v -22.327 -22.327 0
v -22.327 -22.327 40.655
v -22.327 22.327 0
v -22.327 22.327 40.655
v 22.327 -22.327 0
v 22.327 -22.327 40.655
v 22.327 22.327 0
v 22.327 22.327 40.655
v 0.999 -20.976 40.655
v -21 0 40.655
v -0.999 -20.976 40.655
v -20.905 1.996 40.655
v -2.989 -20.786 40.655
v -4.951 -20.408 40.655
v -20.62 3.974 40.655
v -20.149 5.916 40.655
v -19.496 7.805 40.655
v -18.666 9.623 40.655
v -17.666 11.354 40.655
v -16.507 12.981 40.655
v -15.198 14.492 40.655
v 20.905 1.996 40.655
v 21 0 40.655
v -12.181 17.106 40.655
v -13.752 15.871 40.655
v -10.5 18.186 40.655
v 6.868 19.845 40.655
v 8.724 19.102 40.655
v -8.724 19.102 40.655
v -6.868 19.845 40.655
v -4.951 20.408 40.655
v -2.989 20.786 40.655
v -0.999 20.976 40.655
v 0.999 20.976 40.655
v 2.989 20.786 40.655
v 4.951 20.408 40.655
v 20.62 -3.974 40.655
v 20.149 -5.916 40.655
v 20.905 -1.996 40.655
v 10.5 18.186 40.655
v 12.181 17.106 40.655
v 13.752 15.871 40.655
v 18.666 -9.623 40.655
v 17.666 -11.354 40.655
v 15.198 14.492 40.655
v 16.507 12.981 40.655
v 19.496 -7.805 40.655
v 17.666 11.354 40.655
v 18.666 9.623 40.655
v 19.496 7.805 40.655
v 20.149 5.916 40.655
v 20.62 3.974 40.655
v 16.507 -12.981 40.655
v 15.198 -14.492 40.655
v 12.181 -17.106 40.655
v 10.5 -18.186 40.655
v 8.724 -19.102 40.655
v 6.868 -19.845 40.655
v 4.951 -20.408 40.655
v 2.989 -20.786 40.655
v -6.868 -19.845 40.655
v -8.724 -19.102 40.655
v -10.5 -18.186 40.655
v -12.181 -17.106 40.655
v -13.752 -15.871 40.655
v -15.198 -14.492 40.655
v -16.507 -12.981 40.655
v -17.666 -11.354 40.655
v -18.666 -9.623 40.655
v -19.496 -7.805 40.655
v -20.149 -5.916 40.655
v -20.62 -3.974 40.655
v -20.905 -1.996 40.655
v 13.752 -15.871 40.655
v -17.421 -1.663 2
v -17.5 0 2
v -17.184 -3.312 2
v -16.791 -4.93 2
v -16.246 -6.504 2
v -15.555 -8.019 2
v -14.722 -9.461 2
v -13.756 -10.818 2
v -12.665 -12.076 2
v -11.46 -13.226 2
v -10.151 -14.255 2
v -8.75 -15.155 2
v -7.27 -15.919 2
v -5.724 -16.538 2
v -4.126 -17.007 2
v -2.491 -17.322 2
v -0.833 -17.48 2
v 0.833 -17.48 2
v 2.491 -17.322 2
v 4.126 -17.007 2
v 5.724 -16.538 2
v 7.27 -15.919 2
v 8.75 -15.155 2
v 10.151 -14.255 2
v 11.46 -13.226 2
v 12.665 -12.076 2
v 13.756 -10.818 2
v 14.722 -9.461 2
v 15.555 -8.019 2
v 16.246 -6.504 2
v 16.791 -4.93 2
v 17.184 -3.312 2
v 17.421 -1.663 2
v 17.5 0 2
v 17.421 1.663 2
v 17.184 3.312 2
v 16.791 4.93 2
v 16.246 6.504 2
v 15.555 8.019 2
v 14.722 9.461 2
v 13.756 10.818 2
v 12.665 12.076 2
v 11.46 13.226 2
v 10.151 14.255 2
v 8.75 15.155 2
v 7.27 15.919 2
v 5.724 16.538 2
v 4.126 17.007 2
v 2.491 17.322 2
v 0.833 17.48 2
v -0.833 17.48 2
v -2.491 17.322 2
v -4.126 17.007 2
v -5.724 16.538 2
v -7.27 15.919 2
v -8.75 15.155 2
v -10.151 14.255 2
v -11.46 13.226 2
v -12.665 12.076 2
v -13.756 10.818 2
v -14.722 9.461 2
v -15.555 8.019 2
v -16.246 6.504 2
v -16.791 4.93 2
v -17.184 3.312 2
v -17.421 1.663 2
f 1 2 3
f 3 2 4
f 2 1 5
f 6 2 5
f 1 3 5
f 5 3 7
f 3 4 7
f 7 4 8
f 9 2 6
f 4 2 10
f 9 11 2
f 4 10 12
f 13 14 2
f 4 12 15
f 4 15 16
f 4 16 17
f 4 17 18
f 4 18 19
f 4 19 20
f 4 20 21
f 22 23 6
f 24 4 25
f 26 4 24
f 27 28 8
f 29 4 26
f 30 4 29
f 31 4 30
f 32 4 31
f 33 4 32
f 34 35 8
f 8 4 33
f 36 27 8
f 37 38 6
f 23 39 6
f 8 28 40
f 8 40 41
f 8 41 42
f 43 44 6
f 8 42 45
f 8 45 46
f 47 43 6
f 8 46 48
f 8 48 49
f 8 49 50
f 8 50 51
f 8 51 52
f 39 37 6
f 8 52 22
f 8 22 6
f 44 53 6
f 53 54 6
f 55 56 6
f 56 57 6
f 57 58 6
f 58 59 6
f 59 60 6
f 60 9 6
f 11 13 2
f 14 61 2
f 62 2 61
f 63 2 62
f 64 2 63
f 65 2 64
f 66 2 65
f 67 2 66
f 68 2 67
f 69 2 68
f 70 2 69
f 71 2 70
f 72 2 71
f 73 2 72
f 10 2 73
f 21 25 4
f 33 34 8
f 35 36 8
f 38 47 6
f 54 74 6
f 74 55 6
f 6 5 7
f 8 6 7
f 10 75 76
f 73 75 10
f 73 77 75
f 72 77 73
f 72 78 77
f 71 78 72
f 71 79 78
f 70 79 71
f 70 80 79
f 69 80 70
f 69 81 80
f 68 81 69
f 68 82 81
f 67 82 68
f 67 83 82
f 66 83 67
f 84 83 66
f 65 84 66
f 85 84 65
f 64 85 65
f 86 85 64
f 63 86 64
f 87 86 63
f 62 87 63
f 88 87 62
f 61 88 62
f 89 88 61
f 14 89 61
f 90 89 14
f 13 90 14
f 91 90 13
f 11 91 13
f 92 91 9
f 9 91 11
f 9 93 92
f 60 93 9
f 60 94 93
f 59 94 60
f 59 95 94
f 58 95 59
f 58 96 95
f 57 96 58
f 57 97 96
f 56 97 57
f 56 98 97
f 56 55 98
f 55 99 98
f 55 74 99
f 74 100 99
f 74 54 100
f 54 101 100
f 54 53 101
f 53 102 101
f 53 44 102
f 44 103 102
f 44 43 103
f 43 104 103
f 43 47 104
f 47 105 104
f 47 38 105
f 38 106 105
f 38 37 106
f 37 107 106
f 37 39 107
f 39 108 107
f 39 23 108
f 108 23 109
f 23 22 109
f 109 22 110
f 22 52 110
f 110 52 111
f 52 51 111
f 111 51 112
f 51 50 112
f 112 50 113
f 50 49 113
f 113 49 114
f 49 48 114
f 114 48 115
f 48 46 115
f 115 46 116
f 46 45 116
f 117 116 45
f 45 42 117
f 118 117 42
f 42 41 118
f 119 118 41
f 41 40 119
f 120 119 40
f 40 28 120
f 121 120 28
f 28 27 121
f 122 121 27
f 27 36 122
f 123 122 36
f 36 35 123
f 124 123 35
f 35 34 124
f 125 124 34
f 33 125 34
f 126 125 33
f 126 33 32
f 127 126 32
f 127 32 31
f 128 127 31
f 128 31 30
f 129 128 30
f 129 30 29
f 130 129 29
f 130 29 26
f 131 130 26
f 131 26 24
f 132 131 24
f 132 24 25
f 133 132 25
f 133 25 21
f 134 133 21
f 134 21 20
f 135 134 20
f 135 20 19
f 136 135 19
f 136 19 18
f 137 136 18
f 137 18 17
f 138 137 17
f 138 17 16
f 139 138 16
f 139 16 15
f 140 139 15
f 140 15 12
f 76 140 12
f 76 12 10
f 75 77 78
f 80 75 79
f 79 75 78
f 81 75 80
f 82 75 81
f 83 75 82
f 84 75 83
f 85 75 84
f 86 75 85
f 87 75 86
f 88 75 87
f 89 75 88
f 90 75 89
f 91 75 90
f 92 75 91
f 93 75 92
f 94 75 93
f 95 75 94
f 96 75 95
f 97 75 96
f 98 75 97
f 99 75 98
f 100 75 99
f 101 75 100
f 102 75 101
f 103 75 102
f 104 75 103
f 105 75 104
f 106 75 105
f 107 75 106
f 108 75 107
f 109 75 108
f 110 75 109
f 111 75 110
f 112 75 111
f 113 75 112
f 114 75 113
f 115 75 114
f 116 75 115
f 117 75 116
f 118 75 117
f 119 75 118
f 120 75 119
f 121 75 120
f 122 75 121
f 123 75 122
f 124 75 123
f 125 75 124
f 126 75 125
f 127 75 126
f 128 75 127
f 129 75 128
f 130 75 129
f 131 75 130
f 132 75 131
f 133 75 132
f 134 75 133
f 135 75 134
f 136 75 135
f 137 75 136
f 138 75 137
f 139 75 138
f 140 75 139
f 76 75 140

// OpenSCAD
//
// rice cup
//	cube type
//
// rice cooker cups are a standard 180 ml
// which is 180000 mm^3
// 

$fa=0.1;

BASE=35;
TOP=BASE*1.2;
AVGDIAM=(BASE+TOP)/2;
VOLUME=180000;
PI=3.14159;
HEIGHT=VOLUME/(AVGDIAM*AVGDIAM*PI);

WALLS=2;

difference() {
	// rice cup exterior
	translate( v=[0,0,(HEIGHT+WALLS)/2] ) {
		cube( size=[HEIGHT+(WALLS*3),HEIGHT+(WALLS*3),HEIGHT+WALLS], center=true );
	}
	// rice cup interior
	translate( v=[0,0,WALLS] ) {
		cylinder(r1=(BASE/2),r2=(TOP/2),h=HEIGHT);
	}
}
